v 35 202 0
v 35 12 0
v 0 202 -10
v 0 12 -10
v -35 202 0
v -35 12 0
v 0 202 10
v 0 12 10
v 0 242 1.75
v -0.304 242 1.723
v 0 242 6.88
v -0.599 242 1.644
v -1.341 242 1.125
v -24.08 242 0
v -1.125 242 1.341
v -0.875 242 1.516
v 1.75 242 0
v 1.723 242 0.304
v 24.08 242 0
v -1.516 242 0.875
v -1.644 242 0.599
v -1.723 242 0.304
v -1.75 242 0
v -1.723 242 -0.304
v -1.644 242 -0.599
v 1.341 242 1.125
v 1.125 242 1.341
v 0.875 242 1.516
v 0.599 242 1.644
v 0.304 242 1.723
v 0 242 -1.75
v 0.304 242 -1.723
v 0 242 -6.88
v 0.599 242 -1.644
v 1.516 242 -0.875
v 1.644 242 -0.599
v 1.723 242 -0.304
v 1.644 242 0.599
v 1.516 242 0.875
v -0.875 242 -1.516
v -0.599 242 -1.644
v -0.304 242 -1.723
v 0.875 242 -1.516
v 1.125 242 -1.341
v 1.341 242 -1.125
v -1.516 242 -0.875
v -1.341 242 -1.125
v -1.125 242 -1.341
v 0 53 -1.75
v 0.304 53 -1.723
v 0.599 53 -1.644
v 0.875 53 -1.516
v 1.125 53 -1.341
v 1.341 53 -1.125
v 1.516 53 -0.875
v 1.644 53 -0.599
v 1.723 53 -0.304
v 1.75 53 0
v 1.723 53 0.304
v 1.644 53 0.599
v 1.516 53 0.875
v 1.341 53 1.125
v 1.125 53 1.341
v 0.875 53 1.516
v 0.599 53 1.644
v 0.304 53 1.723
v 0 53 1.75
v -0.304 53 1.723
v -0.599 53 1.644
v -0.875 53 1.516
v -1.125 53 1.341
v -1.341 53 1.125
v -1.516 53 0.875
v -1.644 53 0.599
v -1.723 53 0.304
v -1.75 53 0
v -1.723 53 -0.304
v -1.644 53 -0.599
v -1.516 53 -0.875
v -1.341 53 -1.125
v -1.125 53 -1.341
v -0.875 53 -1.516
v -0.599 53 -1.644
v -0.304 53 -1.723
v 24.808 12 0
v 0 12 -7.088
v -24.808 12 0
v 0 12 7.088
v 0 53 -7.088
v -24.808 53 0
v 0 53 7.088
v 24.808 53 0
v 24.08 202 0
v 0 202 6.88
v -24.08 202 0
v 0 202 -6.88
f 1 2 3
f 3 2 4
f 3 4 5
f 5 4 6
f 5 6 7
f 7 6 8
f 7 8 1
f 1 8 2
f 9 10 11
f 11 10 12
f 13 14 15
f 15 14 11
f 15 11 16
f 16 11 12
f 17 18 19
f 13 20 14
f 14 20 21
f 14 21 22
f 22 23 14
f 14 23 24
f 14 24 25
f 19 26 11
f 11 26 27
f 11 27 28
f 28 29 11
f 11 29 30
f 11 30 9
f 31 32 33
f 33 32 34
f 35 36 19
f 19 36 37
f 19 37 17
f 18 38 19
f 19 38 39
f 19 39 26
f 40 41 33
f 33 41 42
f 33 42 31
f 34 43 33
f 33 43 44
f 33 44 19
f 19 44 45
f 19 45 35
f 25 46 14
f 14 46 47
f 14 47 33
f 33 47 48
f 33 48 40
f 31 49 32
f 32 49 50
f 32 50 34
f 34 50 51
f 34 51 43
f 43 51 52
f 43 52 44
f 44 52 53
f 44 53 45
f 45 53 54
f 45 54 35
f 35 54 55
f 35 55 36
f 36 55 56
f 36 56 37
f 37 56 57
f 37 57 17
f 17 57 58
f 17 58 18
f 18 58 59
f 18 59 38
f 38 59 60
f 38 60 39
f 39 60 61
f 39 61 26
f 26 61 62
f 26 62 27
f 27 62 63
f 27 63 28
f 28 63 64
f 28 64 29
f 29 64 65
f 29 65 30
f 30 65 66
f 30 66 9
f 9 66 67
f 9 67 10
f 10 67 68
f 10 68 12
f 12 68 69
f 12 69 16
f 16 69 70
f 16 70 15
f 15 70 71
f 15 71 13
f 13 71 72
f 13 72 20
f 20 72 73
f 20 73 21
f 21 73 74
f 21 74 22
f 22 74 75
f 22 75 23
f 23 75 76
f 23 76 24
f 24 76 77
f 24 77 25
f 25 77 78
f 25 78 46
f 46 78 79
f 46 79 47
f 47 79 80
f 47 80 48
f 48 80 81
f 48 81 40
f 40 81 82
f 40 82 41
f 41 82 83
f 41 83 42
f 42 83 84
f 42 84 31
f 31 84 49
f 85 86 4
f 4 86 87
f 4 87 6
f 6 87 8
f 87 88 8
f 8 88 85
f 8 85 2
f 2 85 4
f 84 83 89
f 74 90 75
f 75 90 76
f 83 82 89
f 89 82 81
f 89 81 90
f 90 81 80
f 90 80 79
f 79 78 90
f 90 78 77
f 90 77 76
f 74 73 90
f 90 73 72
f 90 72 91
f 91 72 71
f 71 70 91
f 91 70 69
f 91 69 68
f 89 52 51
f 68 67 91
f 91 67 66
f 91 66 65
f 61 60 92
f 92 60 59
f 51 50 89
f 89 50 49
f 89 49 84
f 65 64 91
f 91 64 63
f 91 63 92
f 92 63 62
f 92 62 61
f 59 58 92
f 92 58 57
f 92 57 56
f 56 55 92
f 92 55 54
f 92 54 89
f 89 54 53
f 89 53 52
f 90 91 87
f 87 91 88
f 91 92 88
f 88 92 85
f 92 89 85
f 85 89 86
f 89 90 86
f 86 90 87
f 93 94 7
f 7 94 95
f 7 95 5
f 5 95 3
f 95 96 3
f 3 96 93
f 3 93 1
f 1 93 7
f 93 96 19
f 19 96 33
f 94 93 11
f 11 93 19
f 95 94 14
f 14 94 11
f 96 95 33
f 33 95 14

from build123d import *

# Parameters (mm, degrees)
SWEEP_1_DEPTH            = 610
CUT_EXTRUDE_2_DEPTH      = 12
SKETCH_21_R              = 1.75
CUT_EXTRUDE_3_DEPTH      = 600
CUT_EXTRUDE_4_DEPTH      = 691.959477934
CUT_EXTRUDE_4_DEPTH_BACK = 691.959477934
SKETCH_26_OUTSIDE_W      = 208.38
SKETCH_26_OUTSIDE_H      = 816.38
SKETCH_26_OUTSIDE_W_2    = 70
SKETCH_26_OUTSIDE_H_2    = 230
CUT_EXTRUDE_5_DEPTH      = 41
SKETCH_28_OUTSIDE_W      = 120.25
SKETCH_28_OUTSIDE_H      = 70.25
CUT_EXTRUDE_7_DEPTH      = 40


# Read off the part's stored shape, not the designer's step: 扫描1
with BuildPart() as part:
    # 扫描1 outline → 扫描1 (new body)
    with BuildSketch(Plane(origin=(0, 0, 0), x_dir=(1, 0, 0), z_dir=(0, 1, 0))):
        Polygon((-35, 0), (35, 0), (0, 10), align=None)
    sweep_1 = extrude(amount=SWEEP_1_DEPTH)

    # 草图1 → 放样1 section 0
    with BuildSketch(Plane.XY, mode=Mode.PRIVATE) as loft_1_s0:
        with BuildLine():
            Line((-35, 610), (0, 690))
            Line((0, 690), (35, 610))
            Line((35, 610), (-35, 610))
        make_face()
    loft_1 = loft([Vertex(0, 610, -10), loft_1_s0.sketch])

    # 镜向1: 扫描1, 放样1 across plane
    add(sweep_1.mirror(Plane.XY))
    add(loft_1.mirror(Plane.XY))

    # 草图19 → 切除-拉伸2 (cut)
    with BuildSketch(Plane.XZ):
        Polygon((0, -10), (35, 0), (0, 10), (-35, 0), align=None)
    extrude(amount=-CUT_EXTRUDE_2_DEPTH, mode=Mode.SUBTRACT)

    # 草图21 → 切除-拉伸3 (cut)
    with BuildSketch(Plane.XZ.offset(-12)):
        with Locations(Location((0, 0, 0), (0, 0, 270))):
            Circle(SKETCH_21_R)
    extrude(amount=-CUT_EXTRUDE_3_DEPTH, mode=Mode.SUBTRACT)

    # 草图26 outside → 切除-拉伸4 (cut, two sides: drawn at the far end of the back side and taken through both)
    with BuildSketch(Plane.XY.offset(-CUT_EXTRUDE_4_DEPTH_BACK)):
        with Locations((0, 351)):
            Rectangle(SKETCH_26_OUTSIDE_W, SKETCH_26_OUTSIDE_H)
        with Locations((0, 127)):
            Rectangle(SKETCH_26_OUTSIDE_W_2, SKETCH_26_OUTSIDE_H_2, mode=Mode.SUBTRACT)
    extrude(amount=CUT_EXTRUDE_4_DEPTH + CUT_EXTRUDE_4_DEPTH_BACK, mode=Mode.SUBTRACT)

    # 草图27 → 切除-拉伸5 (cut)
    with BuildSketch(Plane.XZ.offset(-12)):
        Polygon((-24.807846155, 0), (0, -7.087956044), (24.807846155, 0), (0, 7.087956044), align=None)
    extrude(amount=-CUT_EXTRUDE_5_DEPTH, mode=Mode.SUBTRACT)

    # 草图28 outside → 切除-拉伸7 (cut)
    with BuildSketch(Plane(origin=(0, 242, 0), x_dir=(1, 0, 0), z_dir=(0, 1, 0))):
        Rectangle(SKETCH_28_OUTSIDE_W, SKETCH_28_OUTSIDE_H)
        Polygon((0, 6.879952905), (-24.079835166, 0), (0, -6.879952905), (24.079835166, 0), align=None, mode=Mode.SUBTRACT)
    extrude(amount=-CUT_EXTRUDE_7_DEPTH, mode=Mode.SUBTRACT)


solid = part.part
